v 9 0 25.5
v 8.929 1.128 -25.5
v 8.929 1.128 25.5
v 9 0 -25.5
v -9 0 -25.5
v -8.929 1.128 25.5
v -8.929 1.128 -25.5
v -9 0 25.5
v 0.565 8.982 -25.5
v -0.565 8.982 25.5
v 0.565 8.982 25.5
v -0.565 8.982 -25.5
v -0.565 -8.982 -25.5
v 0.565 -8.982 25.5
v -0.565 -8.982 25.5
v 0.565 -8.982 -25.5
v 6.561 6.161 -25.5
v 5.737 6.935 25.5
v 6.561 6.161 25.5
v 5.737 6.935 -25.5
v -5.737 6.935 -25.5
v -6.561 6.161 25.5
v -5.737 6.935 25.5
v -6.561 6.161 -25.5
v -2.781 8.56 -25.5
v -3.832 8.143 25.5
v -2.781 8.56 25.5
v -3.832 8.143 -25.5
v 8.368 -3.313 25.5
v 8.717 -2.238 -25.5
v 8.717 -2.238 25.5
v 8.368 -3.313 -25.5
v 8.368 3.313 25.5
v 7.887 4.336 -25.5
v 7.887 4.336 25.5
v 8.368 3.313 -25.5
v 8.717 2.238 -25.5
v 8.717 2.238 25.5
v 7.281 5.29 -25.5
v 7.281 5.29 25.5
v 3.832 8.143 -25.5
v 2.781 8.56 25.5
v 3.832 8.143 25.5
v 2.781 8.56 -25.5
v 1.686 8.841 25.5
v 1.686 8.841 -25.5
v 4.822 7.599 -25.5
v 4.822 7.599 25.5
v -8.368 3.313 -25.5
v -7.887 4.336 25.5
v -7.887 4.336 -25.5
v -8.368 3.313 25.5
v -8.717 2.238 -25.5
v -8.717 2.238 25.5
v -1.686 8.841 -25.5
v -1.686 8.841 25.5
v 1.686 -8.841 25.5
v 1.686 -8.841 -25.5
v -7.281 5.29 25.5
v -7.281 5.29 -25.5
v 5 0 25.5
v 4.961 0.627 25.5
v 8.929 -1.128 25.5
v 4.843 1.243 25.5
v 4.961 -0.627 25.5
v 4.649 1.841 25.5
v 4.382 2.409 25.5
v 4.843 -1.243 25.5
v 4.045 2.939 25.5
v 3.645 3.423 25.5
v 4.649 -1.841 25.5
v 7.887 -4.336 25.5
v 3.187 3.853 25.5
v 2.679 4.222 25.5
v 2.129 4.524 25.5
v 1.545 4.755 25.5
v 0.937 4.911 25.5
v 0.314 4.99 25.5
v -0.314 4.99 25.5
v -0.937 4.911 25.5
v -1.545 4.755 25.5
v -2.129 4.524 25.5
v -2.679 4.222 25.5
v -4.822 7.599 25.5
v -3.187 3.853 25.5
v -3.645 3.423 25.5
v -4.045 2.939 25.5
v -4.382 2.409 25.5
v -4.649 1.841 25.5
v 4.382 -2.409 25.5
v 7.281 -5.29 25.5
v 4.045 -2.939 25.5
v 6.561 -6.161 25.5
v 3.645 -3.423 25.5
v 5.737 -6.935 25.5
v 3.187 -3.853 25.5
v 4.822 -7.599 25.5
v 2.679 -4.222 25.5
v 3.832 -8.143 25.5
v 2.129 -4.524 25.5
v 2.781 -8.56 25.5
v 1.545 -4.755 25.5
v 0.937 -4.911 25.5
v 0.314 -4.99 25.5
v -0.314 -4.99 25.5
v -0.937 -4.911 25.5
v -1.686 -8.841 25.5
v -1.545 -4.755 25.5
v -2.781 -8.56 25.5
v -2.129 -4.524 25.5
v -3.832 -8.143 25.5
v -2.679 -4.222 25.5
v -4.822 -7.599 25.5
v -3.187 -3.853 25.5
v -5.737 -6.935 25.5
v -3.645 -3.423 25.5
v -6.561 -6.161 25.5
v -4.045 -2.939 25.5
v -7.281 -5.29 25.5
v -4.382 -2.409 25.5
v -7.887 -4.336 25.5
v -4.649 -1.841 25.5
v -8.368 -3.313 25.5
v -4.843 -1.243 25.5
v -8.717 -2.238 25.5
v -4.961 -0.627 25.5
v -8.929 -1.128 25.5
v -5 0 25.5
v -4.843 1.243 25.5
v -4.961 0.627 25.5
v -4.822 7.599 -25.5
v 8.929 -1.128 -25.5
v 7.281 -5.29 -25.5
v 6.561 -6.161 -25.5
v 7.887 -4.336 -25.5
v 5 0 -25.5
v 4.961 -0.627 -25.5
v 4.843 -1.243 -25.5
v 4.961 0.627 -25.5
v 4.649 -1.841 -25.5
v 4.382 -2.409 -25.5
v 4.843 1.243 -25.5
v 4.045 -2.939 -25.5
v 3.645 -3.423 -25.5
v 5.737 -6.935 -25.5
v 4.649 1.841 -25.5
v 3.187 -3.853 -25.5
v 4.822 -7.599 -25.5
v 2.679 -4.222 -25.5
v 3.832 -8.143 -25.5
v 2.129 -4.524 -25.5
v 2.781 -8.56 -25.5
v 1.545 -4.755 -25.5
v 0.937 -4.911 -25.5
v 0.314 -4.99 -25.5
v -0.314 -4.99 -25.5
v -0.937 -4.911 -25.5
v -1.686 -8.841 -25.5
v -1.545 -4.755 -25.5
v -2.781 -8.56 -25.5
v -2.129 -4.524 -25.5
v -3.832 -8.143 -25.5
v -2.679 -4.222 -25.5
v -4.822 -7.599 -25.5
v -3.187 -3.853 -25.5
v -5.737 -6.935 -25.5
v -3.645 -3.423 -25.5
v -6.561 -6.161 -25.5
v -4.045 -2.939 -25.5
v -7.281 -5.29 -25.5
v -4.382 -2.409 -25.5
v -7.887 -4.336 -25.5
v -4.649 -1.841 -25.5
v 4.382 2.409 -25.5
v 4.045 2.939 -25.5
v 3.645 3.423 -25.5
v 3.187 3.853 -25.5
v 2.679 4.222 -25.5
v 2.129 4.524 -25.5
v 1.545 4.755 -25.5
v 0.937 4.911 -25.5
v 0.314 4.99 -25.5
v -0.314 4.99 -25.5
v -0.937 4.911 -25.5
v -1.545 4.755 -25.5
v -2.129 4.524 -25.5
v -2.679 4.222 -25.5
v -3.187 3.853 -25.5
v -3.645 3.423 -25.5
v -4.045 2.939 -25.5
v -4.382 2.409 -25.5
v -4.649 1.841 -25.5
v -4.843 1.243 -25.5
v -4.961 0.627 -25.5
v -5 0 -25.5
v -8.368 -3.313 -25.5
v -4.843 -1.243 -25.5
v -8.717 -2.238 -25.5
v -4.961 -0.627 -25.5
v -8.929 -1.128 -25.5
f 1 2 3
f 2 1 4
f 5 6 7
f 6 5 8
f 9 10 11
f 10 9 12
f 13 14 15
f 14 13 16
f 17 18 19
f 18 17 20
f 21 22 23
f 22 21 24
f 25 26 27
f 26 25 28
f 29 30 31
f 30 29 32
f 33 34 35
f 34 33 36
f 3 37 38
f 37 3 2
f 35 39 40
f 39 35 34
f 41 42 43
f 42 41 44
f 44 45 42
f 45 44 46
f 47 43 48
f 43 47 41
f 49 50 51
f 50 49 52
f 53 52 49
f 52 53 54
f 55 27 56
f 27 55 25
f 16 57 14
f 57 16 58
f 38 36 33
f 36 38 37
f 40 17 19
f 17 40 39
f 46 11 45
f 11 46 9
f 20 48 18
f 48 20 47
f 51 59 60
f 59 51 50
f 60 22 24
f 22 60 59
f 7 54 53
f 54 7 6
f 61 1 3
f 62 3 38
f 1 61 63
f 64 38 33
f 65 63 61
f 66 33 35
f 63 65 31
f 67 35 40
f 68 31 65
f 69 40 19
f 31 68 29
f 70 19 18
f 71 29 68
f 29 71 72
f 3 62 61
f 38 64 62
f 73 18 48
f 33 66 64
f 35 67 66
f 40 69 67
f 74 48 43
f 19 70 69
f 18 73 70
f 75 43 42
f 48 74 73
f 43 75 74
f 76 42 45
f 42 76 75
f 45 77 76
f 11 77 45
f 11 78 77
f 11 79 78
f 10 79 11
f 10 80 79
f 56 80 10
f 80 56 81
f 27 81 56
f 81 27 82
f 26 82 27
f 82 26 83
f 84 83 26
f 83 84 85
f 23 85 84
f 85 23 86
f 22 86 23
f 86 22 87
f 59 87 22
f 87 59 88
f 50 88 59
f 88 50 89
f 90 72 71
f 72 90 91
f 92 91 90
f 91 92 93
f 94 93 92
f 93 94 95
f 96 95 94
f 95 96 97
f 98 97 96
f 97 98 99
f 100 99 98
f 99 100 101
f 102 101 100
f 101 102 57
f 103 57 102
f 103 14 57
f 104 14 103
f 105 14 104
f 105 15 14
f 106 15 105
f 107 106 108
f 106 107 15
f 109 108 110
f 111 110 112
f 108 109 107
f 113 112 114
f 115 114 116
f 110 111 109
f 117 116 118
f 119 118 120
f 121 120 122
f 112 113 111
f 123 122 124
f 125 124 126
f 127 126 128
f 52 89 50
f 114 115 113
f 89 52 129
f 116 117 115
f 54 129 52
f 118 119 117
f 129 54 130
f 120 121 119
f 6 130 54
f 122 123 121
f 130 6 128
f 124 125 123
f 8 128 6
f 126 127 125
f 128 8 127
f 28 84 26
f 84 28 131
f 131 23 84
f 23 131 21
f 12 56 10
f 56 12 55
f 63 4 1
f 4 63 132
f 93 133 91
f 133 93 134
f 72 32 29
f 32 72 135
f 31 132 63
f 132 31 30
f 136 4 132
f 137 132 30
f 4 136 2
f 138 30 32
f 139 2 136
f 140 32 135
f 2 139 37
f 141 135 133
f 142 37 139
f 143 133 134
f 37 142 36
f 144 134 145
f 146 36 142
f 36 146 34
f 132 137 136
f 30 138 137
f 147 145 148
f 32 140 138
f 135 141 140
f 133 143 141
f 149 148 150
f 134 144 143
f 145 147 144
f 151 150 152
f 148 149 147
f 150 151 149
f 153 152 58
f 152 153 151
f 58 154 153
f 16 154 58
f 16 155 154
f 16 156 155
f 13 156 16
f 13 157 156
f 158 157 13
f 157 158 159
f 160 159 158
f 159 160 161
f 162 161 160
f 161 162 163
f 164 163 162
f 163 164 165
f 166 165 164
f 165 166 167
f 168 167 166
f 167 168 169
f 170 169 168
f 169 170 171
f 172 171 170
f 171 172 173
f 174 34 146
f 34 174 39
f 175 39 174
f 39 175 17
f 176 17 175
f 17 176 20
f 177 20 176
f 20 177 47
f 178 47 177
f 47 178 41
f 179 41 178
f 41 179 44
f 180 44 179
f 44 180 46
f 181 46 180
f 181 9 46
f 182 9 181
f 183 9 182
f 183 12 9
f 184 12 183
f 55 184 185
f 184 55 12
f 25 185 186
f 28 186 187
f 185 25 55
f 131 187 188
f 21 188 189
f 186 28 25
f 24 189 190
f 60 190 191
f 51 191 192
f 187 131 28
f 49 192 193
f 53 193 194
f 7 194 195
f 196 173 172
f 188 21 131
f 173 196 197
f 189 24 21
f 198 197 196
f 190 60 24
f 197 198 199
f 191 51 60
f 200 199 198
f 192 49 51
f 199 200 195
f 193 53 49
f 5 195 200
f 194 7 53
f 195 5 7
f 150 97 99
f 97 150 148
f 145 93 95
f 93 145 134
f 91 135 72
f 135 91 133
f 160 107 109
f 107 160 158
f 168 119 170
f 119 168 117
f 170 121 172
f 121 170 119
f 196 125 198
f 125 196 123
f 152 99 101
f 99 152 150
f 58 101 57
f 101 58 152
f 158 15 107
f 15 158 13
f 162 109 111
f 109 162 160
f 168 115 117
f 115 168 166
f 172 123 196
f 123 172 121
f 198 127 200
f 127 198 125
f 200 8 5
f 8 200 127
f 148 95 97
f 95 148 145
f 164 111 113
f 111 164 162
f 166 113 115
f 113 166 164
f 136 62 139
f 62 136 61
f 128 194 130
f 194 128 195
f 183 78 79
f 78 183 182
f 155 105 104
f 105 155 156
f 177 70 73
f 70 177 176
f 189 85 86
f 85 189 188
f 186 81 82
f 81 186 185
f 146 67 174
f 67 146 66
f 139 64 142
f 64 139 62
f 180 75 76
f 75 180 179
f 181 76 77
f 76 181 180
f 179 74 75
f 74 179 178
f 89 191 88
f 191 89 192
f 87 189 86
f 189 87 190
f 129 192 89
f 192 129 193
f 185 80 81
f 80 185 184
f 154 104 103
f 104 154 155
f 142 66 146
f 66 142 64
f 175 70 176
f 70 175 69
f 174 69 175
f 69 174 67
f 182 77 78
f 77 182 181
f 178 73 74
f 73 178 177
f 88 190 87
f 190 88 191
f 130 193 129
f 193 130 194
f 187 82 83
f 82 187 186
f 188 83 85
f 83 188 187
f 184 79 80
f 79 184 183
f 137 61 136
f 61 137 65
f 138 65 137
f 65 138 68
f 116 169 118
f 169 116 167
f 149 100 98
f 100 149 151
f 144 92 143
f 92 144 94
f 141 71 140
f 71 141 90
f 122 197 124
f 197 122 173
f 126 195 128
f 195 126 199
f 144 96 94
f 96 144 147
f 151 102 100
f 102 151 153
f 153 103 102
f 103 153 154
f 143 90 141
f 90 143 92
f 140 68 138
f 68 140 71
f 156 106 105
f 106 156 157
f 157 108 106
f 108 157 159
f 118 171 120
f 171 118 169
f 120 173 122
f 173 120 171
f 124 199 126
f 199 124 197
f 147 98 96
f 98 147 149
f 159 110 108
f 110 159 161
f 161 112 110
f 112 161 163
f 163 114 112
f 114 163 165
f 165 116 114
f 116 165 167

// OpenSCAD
$fn = 50;


difference() {
	union() {
		translate(v = [0, 0, -25.5000000000]) {
			cylinder(h = 51, r = 9.0000000000);
		}
	}
	union() {
		translate(v = [0, 0, -100.0000000000]) {
			cylinder(h = 200, r = 5.0000000000);
		}
	}
}
